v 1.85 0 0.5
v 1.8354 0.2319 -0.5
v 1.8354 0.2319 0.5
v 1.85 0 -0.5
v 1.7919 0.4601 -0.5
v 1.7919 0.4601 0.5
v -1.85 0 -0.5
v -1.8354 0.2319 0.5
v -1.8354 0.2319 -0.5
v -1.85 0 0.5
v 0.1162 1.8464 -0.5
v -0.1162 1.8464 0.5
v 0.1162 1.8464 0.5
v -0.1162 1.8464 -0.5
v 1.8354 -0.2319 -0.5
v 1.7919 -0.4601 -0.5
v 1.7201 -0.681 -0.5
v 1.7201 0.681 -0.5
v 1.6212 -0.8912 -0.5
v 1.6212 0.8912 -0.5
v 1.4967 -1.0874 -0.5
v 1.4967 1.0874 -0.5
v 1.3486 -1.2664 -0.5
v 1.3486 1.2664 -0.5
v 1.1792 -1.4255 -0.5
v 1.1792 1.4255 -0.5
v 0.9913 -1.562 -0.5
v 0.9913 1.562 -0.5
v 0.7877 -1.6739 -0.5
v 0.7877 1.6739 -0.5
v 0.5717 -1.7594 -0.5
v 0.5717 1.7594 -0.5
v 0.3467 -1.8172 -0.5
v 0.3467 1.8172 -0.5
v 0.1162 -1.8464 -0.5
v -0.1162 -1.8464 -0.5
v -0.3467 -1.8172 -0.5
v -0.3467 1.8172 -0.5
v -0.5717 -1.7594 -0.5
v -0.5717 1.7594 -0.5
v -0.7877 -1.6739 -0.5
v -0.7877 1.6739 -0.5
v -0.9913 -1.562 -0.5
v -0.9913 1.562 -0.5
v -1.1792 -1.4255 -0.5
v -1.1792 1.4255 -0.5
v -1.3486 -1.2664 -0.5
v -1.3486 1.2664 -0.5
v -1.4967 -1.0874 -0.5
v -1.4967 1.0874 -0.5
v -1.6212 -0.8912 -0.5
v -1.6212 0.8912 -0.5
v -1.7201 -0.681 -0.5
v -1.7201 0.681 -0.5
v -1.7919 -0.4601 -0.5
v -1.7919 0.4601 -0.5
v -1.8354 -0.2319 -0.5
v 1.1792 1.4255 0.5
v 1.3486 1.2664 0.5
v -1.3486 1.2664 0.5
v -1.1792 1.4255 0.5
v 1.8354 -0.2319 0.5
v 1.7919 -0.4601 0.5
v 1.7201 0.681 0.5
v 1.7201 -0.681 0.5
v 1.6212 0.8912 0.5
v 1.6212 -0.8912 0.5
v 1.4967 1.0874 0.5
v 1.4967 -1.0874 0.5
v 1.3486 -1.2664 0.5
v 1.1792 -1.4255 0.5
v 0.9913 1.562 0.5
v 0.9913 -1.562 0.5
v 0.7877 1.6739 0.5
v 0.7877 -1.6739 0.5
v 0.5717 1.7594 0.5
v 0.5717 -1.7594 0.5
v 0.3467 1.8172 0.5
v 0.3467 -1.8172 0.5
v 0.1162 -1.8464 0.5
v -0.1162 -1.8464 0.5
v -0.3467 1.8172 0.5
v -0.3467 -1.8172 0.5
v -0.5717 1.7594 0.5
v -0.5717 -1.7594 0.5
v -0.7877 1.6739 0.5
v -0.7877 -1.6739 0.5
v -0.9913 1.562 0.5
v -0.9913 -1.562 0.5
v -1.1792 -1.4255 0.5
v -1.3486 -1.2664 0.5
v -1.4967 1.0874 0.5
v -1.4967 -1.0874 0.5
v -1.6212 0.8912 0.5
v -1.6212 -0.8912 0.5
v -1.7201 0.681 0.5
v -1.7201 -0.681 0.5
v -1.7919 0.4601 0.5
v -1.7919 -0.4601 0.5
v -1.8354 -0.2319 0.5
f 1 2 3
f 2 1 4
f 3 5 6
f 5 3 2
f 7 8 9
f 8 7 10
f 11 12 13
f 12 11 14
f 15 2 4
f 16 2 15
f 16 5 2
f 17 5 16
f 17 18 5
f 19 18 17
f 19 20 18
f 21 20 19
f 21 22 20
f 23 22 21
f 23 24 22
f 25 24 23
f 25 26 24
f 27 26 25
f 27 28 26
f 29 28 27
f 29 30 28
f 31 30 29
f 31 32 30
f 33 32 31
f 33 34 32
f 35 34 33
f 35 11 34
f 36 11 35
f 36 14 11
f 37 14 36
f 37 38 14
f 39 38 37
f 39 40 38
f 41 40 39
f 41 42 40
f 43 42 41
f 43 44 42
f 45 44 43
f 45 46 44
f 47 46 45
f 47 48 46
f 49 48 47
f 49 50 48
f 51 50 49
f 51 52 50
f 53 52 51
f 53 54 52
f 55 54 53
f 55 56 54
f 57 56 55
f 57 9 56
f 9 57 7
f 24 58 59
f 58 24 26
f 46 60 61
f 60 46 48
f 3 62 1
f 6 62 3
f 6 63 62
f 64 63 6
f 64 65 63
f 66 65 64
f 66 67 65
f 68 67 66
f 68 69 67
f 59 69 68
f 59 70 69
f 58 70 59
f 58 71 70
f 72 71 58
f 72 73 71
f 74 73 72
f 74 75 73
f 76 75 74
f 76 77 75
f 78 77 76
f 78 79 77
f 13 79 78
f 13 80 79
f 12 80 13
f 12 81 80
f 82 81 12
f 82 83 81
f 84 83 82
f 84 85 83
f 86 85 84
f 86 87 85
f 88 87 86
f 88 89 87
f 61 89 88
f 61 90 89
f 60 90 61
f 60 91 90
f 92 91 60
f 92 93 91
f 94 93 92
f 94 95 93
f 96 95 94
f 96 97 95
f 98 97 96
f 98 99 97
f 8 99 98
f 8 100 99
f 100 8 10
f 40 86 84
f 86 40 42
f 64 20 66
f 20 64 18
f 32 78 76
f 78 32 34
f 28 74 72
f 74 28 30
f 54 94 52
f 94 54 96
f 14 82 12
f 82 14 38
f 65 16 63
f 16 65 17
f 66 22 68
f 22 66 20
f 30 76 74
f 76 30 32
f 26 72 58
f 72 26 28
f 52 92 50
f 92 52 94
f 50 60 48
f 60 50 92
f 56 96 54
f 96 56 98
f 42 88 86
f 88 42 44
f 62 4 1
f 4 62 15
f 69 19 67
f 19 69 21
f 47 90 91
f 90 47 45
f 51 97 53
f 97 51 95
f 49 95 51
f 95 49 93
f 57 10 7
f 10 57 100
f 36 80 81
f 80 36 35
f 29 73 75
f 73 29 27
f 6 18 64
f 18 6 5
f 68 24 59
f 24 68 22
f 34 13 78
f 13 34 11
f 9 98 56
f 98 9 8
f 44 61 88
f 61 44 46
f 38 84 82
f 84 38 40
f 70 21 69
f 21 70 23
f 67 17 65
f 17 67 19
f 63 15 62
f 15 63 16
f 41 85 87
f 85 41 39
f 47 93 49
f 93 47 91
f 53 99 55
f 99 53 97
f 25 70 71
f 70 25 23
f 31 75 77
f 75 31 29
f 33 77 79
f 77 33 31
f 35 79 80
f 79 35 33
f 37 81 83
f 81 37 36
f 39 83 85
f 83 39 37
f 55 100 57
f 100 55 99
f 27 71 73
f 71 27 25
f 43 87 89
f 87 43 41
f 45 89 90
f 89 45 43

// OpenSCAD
$fn = 50;


difference() {
	union() {
		translate(v = [0, 0, -0.5000000000]) {
			cylinder(h = 1, r = 1.8500000000);
		}
	}
	union() {
		translate(v = [0, 0, -100.0000000000]) {
			cylinder(h = 200, r = 0);
		}
	}
}
